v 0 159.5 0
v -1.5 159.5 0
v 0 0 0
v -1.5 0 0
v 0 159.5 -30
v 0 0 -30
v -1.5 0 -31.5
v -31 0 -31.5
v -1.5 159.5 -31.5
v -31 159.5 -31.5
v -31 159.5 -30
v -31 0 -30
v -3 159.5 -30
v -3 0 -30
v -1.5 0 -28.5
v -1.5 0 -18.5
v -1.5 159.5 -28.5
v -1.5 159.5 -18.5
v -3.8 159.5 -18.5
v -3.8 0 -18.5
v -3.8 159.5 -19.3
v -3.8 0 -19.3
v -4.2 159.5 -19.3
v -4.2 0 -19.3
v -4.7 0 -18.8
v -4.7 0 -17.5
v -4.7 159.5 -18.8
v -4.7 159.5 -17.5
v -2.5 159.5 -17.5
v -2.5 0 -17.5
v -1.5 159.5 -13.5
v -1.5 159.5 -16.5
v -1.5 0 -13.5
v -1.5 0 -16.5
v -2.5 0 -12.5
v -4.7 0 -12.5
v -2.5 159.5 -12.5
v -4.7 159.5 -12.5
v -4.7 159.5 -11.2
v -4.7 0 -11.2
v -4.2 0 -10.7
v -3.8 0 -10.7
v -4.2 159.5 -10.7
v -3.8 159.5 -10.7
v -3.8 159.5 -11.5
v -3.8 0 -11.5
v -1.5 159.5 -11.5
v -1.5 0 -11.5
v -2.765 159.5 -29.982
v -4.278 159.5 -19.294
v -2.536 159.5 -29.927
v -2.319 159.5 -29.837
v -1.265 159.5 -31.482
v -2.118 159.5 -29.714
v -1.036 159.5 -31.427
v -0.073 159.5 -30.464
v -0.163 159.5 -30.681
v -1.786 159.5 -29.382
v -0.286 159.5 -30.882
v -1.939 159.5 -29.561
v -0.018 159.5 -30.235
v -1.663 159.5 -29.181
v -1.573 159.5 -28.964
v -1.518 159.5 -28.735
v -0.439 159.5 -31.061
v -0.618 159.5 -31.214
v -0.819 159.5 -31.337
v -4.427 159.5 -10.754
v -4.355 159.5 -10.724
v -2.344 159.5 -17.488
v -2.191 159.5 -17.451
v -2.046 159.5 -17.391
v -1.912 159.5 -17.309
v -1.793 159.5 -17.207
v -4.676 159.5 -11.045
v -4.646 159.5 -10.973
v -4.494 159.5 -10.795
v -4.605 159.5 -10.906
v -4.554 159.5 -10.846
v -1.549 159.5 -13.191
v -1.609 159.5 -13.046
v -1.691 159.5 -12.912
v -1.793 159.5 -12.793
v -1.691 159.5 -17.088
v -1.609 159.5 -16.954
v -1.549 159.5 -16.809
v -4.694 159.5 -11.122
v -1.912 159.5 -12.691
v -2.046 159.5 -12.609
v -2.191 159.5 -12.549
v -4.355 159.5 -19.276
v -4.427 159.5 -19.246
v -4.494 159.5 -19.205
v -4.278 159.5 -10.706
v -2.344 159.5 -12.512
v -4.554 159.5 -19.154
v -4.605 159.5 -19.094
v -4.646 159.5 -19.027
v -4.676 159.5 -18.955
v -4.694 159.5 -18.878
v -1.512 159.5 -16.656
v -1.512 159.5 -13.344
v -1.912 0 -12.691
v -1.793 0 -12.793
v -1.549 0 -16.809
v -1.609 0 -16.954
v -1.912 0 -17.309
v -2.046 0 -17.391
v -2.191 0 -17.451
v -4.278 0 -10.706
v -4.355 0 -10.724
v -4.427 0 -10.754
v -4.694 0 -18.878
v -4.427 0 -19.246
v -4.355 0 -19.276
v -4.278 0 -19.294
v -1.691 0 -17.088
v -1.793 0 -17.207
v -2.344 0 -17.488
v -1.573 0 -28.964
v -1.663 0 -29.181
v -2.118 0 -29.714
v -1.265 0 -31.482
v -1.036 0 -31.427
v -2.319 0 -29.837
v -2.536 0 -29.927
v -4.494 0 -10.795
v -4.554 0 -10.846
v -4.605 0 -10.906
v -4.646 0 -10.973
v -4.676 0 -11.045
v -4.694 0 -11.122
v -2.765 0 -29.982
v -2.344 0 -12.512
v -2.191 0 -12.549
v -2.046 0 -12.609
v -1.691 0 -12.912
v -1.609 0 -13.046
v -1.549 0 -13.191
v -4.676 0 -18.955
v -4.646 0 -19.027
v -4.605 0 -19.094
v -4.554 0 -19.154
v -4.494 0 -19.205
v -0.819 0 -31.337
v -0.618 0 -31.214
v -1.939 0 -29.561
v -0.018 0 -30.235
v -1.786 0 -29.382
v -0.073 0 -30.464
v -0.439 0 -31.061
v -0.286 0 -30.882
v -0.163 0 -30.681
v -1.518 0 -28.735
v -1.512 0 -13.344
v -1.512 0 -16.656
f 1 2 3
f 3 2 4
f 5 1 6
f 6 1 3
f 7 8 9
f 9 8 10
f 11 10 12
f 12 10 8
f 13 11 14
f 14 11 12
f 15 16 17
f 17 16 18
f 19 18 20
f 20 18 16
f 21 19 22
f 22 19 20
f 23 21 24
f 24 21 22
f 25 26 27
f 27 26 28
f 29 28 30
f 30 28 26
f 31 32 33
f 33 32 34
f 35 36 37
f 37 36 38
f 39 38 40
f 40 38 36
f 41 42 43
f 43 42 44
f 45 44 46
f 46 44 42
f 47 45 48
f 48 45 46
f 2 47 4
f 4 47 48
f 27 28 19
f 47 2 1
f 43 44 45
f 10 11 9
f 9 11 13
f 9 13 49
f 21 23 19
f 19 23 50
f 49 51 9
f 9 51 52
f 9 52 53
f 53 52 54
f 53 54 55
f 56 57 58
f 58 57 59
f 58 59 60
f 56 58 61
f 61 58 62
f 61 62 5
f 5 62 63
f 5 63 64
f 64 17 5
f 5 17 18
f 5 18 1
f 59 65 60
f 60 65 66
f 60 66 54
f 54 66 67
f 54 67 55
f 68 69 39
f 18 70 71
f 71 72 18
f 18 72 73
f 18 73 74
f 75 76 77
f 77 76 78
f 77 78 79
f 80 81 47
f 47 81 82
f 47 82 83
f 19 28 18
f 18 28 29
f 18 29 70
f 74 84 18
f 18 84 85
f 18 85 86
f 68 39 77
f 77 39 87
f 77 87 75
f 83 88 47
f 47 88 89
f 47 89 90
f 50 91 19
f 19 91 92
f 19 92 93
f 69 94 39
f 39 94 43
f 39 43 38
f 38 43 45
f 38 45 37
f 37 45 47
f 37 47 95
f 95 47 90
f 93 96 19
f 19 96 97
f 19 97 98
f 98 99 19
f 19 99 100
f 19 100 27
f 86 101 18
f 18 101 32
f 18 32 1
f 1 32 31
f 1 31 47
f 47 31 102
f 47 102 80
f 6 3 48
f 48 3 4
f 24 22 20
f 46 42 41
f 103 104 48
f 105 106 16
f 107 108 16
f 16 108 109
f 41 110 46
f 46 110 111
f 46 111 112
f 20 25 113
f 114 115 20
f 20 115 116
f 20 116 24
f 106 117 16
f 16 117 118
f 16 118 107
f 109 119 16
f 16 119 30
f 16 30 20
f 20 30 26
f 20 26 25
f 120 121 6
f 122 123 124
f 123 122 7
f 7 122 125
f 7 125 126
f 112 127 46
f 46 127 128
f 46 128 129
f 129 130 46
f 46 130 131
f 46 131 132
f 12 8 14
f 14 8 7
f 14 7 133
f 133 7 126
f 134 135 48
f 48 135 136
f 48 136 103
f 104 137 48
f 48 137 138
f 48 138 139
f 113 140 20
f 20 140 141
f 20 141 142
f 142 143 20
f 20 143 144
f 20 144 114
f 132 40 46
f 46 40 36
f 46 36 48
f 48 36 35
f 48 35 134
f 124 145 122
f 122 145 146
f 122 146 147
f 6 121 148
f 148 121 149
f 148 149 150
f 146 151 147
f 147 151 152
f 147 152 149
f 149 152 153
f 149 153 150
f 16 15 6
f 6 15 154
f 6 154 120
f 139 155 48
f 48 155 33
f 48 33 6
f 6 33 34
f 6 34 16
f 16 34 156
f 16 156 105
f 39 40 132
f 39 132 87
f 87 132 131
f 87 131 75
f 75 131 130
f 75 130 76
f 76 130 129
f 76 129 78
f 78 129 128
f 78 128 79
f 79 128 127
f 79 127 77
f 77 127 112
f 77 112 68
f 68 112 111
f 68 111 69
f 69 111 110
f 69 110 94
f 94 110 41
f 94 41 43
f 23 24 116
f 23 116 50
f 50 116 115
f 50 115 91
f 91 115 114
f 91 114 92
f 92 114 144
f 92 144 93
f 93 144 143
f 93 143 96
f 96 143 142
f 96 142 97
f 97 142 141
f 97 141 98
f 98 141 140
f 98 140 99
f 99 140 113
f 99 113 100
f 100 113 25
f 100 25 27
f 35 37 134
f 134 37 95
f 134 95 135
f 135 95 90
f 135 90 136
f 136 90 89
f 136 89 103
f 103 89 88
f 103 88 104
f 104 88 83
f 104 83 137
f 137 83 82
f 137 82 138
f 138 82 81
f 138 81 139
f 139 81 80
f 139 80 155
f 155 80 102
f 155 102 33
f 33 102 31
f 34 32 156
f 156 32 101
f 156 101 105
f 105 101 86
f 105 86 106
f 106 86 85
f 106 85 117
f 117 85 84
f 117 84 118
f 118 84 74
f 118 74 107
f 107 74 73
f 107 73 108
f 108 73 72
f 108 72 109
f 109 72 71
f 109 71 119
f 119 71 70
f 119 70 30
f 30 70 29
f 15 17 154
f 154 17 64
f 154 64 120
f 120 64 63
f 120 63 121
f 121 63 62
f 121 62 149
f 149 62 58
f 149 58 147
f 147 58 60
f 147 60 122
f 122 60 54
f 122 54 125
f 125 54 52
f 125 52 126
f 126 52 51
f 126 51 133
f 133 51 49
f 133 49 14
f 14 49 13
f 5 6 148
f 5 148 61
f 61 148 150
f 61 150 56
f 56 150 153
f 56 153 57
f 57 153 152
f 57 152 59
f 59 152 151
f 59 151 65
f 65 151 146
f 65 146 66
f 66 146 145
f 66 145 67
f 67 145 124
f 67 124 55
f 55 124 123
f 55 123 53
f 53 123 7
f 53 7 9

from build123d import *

# Parameters (mm, degrees)
SALIENTE_EXTRUIR1_DEPTH = 159.5
REDONDEO1_R             = 0.5
REDONDEO2_R             = 1
REDONDEO3_R             = 1.5
REDONDEO4_R             = 1.5


with BuildPart() as part:
    # Croquis1 → Saliente-Extruir1 (new body)
    with BuildSketch(Plane(origin=(0, 0, 0), x_dir=(1, 0, 0), z_dir=(0, 1, 0))):
        Polygon((0, 0), (0, 31.5), (-31, 31.5), (-31, 30), (-1.5, 30), (-1.5, 18.5), (-3.8, 18.5), (-3.8, 19.3), (-4.7, 19.3), (-4.7, 17.5), (-1.5, 17.5), (-1.5, 12.5), (-4.7, 12.5), (-4.7, 10.7), (-3.8, 10.7), (-3.8, 11.5), (-1.5, 11.5), (-1.5, 0), align=None)
    extrude(amount=SALIENTE_EXTRUIR1_DEPTH)

    # Redondeo1
    redondeo1_edges = [part.edges().sort_by_distance(p)[0] for p in [
        (-4.7, 79.75, -10.7),
        (-4.7, 79.75, -19.3),
    ]]
    fillet(redondeo1_edges, radius=REDONDEO1_R)

    # Redondeo2
    redondeo2_edges = [part.edges().sort_by_distance(p)[0] for p in [
        (-1.5, 79.75, -12.5),
        (-1.5, 79.75, -17.5),
    ]]
    fillet(redondeo2_edges, radius=REDONDEO2_R)

    # Redondeo3
    redondeo3_edges = [part.edges().sort_by_distance(p)[0] for p in [
        (-1.5, 79.75, -30),
    ]]
    fillet(redondeo3_edges, radius=REDONDEO3_R)

    # Redondeo4
    redondeo4_edges = [part.edges().sort_by_distance(p)[0] for p in [
        (0, 79.75, -31.5),
    ]]
    fillet(redondeo4_edges, radius=REDONDEO4_R)


solid = part.part
